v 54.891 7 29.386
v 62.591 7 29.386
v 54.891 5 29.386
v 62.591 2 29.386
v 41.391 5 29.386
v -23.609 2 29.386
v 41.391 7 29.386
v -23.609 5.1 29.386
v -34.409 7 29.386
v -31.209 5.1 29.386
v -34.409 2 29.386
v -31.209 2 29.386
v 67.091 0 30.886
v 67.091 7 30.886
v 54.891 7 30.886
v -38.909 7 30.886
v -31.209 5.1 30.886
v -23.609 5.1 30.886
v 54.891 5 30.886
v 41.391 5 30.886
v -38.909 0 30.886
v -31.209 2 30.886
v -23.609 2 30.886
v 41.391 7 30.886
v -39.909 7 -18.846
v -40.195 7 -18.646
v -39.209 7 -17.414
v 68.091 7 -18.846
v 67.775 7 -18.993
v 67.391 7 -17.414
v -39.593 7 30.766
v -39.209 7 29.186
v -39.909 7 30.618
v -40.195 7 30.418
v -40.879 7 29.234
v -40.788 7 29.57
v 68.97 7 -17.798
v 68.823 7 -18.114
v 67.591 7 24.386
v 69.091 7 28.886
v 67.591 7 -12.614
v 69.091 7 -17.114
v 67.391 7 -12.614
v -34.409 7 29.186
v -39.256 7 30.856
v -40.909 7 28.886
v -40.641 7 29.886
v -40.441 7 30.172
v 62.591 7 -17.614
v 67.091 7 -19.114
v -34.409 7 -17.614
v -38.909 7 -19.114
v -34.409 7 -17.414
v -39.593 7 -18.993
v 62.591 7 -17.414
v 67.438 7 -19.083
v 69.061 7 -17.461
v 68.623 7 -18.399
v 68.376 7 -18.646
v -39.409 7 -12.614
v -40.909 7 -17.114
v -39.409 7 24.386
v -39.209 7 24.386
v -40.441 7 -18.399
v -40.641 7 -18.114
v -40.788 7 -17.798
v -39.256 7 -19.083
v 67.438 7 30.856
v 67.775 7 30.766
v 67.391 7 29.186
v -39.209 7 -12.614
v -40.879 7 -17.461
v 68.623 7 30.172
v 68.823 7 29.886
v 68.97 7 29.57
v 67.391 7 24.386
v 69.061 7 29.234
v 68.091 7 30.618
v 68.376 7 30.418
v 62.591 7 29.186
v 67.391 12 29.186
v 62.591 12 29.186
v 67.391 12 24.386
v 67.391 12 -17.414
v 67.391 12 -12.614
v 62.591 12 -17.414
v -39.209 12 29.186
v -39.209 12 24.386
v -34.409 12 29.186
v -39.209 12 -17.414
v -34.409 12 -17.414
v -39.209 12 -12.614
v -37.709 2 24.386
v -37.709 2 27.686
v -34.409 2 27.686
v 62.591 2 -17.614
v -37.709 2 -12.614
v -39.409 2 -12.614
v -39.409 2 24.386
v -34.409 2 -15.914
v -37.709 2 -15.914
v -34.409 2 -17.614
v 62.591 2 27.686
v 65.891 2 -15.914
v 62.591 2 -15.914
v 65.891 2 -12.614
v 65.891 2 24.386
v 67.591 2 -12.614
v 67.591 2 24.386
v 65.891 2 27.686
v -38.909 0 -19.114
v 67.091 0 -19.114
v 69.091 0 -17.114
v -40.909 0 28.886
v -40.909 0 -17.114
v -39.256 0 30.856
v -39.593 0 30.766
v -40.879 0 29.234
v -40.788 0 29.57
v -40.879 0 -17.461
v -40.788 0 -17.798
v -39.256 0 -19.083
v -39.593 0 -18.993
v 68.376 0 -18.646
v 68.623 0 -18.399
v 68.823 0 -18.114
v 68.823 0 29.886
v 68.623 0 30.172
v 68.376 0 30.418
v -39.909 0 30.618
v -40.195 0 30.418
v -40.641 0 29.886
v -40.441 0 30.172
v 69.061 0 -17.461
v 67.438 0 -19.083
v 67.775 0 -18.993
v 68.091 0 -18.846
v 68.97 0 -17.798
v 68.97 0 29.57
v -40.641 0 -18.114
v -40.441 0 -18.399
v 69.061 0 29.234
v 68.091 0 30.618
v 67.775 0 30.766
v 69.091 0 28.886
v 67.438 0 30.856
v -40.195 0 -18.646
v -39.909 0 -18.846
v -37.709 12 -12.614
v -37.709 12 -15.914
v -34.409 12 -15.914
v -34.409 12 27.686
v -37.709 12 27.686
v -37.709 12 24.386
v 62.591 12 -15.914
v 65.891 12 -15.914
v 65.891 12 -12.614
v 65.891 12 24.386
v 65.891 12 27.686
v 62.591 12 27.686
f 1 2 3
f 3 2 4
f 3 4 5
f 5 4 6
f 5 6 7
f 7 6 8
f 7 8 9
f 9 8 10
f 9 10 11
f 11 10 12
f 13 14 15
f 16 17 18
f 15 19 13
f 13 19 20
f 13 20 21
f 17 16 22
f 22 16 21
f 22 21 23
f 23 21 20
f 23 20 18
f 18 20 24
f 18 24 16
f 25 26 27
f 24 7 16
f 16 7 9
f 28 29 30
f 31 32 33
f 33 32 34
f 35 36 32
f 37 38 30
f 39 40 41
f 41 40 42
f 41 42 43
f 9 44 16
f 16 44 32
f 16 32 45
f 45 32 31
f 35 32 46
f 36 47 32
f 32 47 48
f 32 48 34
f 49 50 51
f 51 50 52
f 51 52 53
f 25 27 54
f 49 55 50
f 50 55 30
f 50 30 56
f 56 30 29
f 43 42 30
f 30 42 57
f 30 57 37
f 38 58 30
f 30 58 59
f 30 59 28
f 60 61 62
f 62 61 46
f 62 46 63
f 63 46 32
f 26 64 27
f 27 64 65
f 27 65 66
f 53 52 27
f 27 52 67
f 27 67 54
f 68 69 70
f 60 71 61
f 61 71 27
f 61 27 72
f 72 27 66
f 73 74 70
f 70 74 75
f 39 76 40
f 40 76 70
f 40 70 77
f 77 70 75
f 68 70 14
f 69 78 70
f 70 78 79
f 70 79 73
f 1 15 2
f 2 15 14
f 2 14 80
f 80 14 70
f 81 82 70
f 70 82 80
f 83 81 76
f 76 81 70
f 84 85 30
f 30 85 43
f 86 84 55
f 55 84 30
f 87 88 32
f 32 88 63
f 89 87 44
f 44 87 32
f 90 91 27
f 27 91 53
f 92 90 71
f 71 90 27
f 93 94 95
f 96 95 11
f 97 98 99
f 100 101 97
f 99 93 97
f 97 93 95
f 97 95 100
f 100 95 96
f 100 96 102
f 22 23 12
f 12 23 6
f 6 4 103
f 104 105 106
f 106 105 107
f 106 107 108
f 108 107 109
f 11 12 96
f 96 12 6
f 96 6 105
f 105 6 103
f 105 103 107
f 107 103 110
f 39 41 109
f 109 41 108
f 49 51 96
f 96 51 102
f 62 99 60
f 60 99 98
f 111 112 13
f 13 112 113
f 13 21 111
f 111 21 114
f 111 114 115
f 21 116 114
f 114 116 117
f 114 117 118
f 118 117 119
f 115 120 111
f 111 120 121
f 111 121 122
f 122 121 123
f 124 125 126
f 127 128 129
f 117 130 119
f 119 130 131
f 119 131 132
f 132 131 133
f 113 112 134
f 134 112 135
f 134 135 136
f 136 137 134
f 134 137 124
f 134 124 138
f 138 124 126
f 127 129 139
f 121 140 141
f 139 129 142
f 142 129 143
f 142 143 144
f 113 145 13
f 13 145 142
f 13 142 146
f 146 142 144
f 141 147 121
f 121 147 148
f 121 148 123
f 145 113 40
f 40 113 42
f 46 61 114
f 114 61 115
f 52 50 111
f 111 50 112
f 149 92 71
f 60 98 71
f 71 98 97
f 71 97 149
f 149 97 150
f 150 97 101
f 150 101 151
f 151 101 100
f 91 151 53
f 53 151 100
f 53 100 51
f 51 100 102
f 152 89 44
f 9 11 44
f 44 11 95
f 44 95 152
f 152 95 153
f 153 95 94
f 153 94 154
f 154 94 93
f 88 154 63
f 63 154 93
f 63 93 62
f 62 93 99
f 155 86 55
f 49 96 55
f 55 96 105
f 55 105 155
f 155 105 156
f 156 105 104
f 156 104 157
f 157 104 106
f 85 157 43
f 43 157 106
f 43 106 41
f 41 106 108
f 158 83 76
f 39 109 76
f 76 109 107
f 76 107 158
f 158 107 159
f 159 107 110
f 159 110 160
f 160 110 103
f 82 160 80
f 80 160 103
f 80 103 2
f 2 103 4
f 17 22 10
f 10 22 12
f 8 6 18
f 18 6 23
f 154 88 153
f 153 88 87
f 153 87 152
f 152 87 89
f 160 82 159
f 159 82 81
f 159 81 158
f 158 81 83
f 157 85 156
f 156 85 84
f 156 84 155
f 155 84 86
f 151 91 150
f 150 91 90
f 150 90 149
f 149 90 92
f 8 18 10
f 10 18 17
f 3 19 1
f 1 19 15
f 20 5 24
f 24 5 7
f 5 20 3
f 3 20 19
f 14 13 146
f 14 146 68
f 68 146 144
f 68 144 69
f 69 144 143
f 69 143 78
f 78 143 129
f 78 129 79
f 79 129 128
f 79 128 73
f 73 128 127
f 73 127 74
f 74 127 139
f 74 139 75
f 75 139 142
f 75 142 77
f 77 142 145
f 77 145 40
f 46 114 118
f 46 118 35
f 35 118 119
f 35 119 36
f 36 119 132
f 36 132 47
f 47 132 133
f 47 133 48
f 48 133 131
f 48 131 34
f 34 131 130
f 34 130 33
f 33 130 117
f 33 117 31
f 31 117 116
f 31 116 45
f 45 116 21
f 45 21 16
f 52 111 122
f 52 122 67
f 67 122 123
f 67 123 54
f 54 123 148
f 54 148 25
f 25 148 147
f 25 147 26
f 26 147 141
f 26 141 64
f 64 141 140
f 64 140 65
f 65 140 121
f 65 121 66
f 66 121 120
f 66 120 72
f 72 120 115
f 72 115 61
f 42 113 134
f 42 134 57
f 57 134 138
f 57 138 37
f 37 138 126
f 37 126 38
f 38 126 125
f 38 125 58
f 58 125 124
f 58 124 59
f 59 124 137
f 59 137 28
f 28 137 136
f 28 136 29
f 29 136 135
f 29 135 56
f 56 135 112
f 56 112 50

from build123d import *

# Parameters (mm, degrees)
STOCK_FULL_SHAPE_1_OUTLINE_W     = 110
STOCK_FULL_SHAPE_1_OUTLINE_H     = 50
STOCK_FULL_SHAPE_1_DEPTH         = 2
STOCK_FULL_START                 = 2
STOCK_FULL_SHAPE_1_2_OUTLINE_W   = 110
STOCK_FULL_SHAPE_1_2_OUTLINE_H   = 50
STOCK_FULL_SHAPE_1_2_OUTLINE_W_2 = 107
STOCK_FULL_SHAPE_1_2_OUTLINE_H_2 = 47
STOCK_FULL_SHAPE_1_2_DEPTH       = 3
BOSS_EXTRUDE1_DEPTH              = 10
BOSS_EXTRUDE2_DEPTH              = 10
BOSS_EXTRUDE3_DEPTH              = 10
BOSS_EXTRUDE4_DEPTH              = 10
CUT_EXTRUDE3_DEPTH               = 7
SKETCH9_W                        = 106.6
SKETCH9_H                        = 2
CUT_EXTRUDE4_DEPTH               = 87
SKETCH10_W                       = 7.6
SKETCH10_H                       = 1.5
CUT_EXTRUDE5_DEPTH               = 3
SKETCH11_W                       = 110
SKETCH11_H                       = 50
BOSS_EXTRUDE5_DEPTH              = 2
BOSS_EXTRUDE6_DEPTH              = 2
SKETCH13_W                       = 7.6
SKETCH13_H                       = 1.5
CUT_EXTRUDE6_DEPTH               = 0.1
SKETCH1_W                        = 13.5
SKETCH1_H                        = 1.5
CUT_EXTRUDE7_DEPTH               = 10.1
FILLET1_R                        = 2


# Read off the part's stored shape, not the designer's step: Stock-full shape-1
with BuildPart() as part:
    # Stock-full shape-1 outline → Stock-full shape-1 (new body)
    with BuildSketch(Plane(origin=(0, 0, 0), x_dir=(1, 0, 0), z_dir=(0, 1, 0))):
        with Locations((14.090909091, -5.886363636)):
            Rectangle(STOCK_FULL_SHAPE_1_OUTLINE_W, STOCK_FULL_SHAPE_1_OUTLINE_H)
    extrude(amount=STOCK_FULL_SHAPE_1_DEPTH)

    # Stock-full shape-1 2 outline → Stock-full shape-1 2 (add)
    with BuildSketch(Plane(origin=(0, 0, 0), x_dir=(1, 0, 0), z_dir=(0, 1, 0)).offset(STOCK_FULL_START)):
        with Locations((14.090909091, -5.886363636)):
            Rectangle(STOCK_FULL_SHAPE_1_2_OUTLINE_W, STOCK_FULL_SHAPE_1_2_OUTLINE_H)
        with Locations((14.090909091, -5.886363636)):
            Rectangle(STOCK_FULL_SHAPE_1_2_OUTLINE_W_2, STOCK_FULL_SHAPE_1_2_OUTLINE_H_2, mode=Mode.SUBTRACT)
    extrude(amount=STOCK_FULL_SHAPE_1_2_DEPTH)

    # Sketch4 → Boss-Extrude1 (add)
    with BuildSketch(Plane(origin=(0, 2, 0), x_dir=(1, 0, 0), z_dir=(0, 1, 0))):
        Polygon((-39.409090909, 12.824440082), (-39.409090909, 17.613636364), (-34.409090909, 17.613636364), (-34.409090909, 15.913636364), (-37.709090909, 15.913636364), (-37.709090909, 12.613636364), (-39.409090909, 12.613636364), align=None)
    extrude(amount=BOSS_EXTRUDE1_DEPTH)

    # Sketch5 → Boss-Extrude2 (add)
    with BuildSketch(Plane(origin=(0, 2, 0), x_dir=(1, 0, 0), z_dir=(0, 1, 0))):
        Polygon((-39.409090909, -29.386363636), (-39.409090909, -24.386363636), (-37.709090909, -24.386363636), (-37.709090909, -27.686363636), (-34.409090909, -27.686363636), (-34.409090909, -29.386363636), align=None)
    extrude(amount=BOSS_EXTRUDE2_DEPTH)

    # Sketch6 → Boss-Extrude3 (add)
    with BuildSketch(Plane(origin=(0, 2, 0), x_dir=(1, 0, 0), z_dir=(0, 1, 0))):
        Polygon((67.590909091, 17.613636364), (62.590909091, 17.613636364), (62.590909091, 15.913636364), (65.890909091, 15.913636364), (65.890909091, 12.613636364), (67.590909091, 12.613636364), align=None)
    extrude(amount=BOSS_EXTRUDE3_DEPTH)

    # Sketch7 → Boss-Extrude4 (add)
    with BuildSketch(Plane(origin=(0, 2, 0), x_dir=(1, 0, 0), z_dir=(0, 1, 0))):
        Polygon((67.590909091, -24.386363636), (67.590909091, -29.386363636), (62.590909091, -29.386363636), (62.590909091, -27.686363636), (65.890909091, -27.686363636), (65.890909091, -24.386363636), align=None)
    extrude(amount=BOSS_EXTRUDE4_DEPTH)

    # Sketch8 → Cut-Extrude3 (cut)
    with BuildSketch(Plane(origin=(0, 12, 0), x_dir=(1, 0, 0), z_dir=(0, 1, 0))):
        Polygon((62.590909091, -29.386363636), (62.590909091, -29.186363636), (67.390909091, -29.186363636), (67.390909091, -24.386363636), (67.590909091, -24.386363636), (67.590909091, -29.386363636), align=None)
        Polygon((62.590909091, 17.613636364), (62.590909091, 17.413636364), (67.390909091, 17.413636364), (67.390909091, 12.613636364), (67.590909091, 12.613636364), (67.590909091, 17.613636364), align=None)
        Polygon((-39.409090909, 12.613636364), (-39.409090909, 17.613636364), (-34.409090909, 17.613636364), (-34.409090909, 17.413636364), (-39.209090909, 17.413636364), (-39.209090909, 12.613636364), align=None)
        Polygon((-39.409090909, -24.386363636), (-39.409090909, -29.386363636), (-34.409090909, -29.386363636), (-34.409090909, -29.186363636), (-39.209090909, -29.186363636), (-39.209090909, -24.386363636), align=None)
    extrude(amount=-CUT_EXTRUDE3_DEPTH, mode=Mode.SUBTRACT)

    # Sketch9 → Cut-Extrude4 (cut)
    with BuildSketch(Plane.XY.offset(29.186363636)):
        with Locations((14.090909091, 11)):
            Rectangle(SKETCH9_W, SKETCH9_H)
    extrude(amount=-CUT_EXTRUDE4_DEPTH, mode=Mode.SUBTRACT)

    # Sketch10 → Cut-Extrude5 (cut)
    with BuildSketch(Plane(origin=(0, 5, 0), x_dir=(1, 0, 0), z_dir=(0, 1, 0))):
        with Locations((-27.409090909, -30.136363636)):
            Rectangle(SKETCH10_W, SKETCH10_H)
    extrude(amount=-CUT_EXTRUDE5_DEPTH, mode=Mode.SUBTRACT)

    # Sketch11 → Boss-Extrude5 (add)
    with BuildSketch(Plane(origin=(0, 5, 0), x_dir=(1, 0, 0), z_dir=(0, 1, 0))):
        with Locations((14.090909091, -5.886363636)):
            Rectangle(SKETCH11_W, SKETCH11_H)
        Polygon((-39.209090909, 17.413636364), (-39.209090909, 12.613636364), (-39.409090909, 12.613636364), (-39.409090909, -24.386363636), (-39.209090909, -24.386363636), (-39.209090909, -29.186363636), (-34.409090909, -29.186363636), (-34.409090909, -29.386363636), (-31.209090909, -29.386363636), (62.590909091, -29.386363636), (62.590909091, -29.186363636), (67.390909091, -29.186363636), (67.390909091, -24.386363636), (67.590909091, -24.386363636), (67.590909091, 12.613636364), (67.390909091, 12.613636364), (67.390909091, 17.413636364), (62.590909091, 17.413636364), (62.590909091, 17.613636364), (-34.409090909, 17.613636364), (-34.409090909, 17.413636364), align=None, mode=Mode.SUBTRACT)
    extrude(amount=BOSS_EXTRUDE5_DEPTH)

    # Sketch12 → Boss-Extrude6 (add)
    with BuildSketch(Plane(origin=(0, 10, 0), x_dir=(1, 0, 0), z_dir=(0, 1, 0))):
        Polygon((-37.709090909, -24.386363636), (-39.209090909, -24.386363636), (-39.209090909, -29.186363636), (-34.409090909, -29.186363636), (-34.409090909, -27.686363636), (-37.709090909, -27.686363636), align=None)
        Polygon((62.590909091, -29.186363636), (67.390909091, -29.186363636), (67.390909091, -24.386363636), (65.890909091, -24.386363636), (65.890909091, -27.686363636), (62.590909091, -27.686363636), align=None)
        Polygon((67.390909091, 12.613636364), (65.890909091, 12.613636364), (65.890909091, 15.913636364), (62.590909091, 15.913636364), (62.590909091, 17.413636364), (67.390909091, 17.413636364), align=None)
        Polygon((-37.709090909, 12.613636364), (-39.209090909, 12.613636364), (-39.209090909, 17.413636364), (-34.409090909, 17.413636364), (-34.409090909, 15.913636364), (-37.709090909, 15.913636364), align=None)
    extrude(amount=BOSS_EXTRUDE6_DEPTH)

    # Sketch13 → Cut-Extrude6 (cut)
    with BuildSketch(Plane.XZ.offset(-5)):
        with Locations((-27.409090909, 30.136363636)):
            Rectangle(SKETCH13_W, SKETCH13_H)
    extrude(amount=-CUT_EXTRUDE6_DEPTH, mode=Mode.SUBTRACT)

    # Sketch1 → Cut-Extrude7 (cut)
    with BuildSketch(Plane(origin=(0, 5, 0), x_dir=(1, 0, 0), z_dir=(0, 1, 0))):
        with Locations((48.140909091, -30.136363636)):
            Rectangle(SKETCH1_W, SKETCH1_H)
    extrude(amount=CUT_EXTRUDE7_DEPTH, mode=Mode.SUBTRACT)

    # Fillet1
    fillet1_edges = [part.edges().sort_by_distance(p)[0] for p in [
        (-40.909090909, 2.5, -19.113636364),
        (69.090909091, 2.5, -19.113636364),
        (69.090909091, 2.5, 30.886363636),
        (-40.909090909, 2.5, 30.886363636),
    ]]
    fillet(fillet1_edges, radius=FILLET1_R)


solid = part.part
